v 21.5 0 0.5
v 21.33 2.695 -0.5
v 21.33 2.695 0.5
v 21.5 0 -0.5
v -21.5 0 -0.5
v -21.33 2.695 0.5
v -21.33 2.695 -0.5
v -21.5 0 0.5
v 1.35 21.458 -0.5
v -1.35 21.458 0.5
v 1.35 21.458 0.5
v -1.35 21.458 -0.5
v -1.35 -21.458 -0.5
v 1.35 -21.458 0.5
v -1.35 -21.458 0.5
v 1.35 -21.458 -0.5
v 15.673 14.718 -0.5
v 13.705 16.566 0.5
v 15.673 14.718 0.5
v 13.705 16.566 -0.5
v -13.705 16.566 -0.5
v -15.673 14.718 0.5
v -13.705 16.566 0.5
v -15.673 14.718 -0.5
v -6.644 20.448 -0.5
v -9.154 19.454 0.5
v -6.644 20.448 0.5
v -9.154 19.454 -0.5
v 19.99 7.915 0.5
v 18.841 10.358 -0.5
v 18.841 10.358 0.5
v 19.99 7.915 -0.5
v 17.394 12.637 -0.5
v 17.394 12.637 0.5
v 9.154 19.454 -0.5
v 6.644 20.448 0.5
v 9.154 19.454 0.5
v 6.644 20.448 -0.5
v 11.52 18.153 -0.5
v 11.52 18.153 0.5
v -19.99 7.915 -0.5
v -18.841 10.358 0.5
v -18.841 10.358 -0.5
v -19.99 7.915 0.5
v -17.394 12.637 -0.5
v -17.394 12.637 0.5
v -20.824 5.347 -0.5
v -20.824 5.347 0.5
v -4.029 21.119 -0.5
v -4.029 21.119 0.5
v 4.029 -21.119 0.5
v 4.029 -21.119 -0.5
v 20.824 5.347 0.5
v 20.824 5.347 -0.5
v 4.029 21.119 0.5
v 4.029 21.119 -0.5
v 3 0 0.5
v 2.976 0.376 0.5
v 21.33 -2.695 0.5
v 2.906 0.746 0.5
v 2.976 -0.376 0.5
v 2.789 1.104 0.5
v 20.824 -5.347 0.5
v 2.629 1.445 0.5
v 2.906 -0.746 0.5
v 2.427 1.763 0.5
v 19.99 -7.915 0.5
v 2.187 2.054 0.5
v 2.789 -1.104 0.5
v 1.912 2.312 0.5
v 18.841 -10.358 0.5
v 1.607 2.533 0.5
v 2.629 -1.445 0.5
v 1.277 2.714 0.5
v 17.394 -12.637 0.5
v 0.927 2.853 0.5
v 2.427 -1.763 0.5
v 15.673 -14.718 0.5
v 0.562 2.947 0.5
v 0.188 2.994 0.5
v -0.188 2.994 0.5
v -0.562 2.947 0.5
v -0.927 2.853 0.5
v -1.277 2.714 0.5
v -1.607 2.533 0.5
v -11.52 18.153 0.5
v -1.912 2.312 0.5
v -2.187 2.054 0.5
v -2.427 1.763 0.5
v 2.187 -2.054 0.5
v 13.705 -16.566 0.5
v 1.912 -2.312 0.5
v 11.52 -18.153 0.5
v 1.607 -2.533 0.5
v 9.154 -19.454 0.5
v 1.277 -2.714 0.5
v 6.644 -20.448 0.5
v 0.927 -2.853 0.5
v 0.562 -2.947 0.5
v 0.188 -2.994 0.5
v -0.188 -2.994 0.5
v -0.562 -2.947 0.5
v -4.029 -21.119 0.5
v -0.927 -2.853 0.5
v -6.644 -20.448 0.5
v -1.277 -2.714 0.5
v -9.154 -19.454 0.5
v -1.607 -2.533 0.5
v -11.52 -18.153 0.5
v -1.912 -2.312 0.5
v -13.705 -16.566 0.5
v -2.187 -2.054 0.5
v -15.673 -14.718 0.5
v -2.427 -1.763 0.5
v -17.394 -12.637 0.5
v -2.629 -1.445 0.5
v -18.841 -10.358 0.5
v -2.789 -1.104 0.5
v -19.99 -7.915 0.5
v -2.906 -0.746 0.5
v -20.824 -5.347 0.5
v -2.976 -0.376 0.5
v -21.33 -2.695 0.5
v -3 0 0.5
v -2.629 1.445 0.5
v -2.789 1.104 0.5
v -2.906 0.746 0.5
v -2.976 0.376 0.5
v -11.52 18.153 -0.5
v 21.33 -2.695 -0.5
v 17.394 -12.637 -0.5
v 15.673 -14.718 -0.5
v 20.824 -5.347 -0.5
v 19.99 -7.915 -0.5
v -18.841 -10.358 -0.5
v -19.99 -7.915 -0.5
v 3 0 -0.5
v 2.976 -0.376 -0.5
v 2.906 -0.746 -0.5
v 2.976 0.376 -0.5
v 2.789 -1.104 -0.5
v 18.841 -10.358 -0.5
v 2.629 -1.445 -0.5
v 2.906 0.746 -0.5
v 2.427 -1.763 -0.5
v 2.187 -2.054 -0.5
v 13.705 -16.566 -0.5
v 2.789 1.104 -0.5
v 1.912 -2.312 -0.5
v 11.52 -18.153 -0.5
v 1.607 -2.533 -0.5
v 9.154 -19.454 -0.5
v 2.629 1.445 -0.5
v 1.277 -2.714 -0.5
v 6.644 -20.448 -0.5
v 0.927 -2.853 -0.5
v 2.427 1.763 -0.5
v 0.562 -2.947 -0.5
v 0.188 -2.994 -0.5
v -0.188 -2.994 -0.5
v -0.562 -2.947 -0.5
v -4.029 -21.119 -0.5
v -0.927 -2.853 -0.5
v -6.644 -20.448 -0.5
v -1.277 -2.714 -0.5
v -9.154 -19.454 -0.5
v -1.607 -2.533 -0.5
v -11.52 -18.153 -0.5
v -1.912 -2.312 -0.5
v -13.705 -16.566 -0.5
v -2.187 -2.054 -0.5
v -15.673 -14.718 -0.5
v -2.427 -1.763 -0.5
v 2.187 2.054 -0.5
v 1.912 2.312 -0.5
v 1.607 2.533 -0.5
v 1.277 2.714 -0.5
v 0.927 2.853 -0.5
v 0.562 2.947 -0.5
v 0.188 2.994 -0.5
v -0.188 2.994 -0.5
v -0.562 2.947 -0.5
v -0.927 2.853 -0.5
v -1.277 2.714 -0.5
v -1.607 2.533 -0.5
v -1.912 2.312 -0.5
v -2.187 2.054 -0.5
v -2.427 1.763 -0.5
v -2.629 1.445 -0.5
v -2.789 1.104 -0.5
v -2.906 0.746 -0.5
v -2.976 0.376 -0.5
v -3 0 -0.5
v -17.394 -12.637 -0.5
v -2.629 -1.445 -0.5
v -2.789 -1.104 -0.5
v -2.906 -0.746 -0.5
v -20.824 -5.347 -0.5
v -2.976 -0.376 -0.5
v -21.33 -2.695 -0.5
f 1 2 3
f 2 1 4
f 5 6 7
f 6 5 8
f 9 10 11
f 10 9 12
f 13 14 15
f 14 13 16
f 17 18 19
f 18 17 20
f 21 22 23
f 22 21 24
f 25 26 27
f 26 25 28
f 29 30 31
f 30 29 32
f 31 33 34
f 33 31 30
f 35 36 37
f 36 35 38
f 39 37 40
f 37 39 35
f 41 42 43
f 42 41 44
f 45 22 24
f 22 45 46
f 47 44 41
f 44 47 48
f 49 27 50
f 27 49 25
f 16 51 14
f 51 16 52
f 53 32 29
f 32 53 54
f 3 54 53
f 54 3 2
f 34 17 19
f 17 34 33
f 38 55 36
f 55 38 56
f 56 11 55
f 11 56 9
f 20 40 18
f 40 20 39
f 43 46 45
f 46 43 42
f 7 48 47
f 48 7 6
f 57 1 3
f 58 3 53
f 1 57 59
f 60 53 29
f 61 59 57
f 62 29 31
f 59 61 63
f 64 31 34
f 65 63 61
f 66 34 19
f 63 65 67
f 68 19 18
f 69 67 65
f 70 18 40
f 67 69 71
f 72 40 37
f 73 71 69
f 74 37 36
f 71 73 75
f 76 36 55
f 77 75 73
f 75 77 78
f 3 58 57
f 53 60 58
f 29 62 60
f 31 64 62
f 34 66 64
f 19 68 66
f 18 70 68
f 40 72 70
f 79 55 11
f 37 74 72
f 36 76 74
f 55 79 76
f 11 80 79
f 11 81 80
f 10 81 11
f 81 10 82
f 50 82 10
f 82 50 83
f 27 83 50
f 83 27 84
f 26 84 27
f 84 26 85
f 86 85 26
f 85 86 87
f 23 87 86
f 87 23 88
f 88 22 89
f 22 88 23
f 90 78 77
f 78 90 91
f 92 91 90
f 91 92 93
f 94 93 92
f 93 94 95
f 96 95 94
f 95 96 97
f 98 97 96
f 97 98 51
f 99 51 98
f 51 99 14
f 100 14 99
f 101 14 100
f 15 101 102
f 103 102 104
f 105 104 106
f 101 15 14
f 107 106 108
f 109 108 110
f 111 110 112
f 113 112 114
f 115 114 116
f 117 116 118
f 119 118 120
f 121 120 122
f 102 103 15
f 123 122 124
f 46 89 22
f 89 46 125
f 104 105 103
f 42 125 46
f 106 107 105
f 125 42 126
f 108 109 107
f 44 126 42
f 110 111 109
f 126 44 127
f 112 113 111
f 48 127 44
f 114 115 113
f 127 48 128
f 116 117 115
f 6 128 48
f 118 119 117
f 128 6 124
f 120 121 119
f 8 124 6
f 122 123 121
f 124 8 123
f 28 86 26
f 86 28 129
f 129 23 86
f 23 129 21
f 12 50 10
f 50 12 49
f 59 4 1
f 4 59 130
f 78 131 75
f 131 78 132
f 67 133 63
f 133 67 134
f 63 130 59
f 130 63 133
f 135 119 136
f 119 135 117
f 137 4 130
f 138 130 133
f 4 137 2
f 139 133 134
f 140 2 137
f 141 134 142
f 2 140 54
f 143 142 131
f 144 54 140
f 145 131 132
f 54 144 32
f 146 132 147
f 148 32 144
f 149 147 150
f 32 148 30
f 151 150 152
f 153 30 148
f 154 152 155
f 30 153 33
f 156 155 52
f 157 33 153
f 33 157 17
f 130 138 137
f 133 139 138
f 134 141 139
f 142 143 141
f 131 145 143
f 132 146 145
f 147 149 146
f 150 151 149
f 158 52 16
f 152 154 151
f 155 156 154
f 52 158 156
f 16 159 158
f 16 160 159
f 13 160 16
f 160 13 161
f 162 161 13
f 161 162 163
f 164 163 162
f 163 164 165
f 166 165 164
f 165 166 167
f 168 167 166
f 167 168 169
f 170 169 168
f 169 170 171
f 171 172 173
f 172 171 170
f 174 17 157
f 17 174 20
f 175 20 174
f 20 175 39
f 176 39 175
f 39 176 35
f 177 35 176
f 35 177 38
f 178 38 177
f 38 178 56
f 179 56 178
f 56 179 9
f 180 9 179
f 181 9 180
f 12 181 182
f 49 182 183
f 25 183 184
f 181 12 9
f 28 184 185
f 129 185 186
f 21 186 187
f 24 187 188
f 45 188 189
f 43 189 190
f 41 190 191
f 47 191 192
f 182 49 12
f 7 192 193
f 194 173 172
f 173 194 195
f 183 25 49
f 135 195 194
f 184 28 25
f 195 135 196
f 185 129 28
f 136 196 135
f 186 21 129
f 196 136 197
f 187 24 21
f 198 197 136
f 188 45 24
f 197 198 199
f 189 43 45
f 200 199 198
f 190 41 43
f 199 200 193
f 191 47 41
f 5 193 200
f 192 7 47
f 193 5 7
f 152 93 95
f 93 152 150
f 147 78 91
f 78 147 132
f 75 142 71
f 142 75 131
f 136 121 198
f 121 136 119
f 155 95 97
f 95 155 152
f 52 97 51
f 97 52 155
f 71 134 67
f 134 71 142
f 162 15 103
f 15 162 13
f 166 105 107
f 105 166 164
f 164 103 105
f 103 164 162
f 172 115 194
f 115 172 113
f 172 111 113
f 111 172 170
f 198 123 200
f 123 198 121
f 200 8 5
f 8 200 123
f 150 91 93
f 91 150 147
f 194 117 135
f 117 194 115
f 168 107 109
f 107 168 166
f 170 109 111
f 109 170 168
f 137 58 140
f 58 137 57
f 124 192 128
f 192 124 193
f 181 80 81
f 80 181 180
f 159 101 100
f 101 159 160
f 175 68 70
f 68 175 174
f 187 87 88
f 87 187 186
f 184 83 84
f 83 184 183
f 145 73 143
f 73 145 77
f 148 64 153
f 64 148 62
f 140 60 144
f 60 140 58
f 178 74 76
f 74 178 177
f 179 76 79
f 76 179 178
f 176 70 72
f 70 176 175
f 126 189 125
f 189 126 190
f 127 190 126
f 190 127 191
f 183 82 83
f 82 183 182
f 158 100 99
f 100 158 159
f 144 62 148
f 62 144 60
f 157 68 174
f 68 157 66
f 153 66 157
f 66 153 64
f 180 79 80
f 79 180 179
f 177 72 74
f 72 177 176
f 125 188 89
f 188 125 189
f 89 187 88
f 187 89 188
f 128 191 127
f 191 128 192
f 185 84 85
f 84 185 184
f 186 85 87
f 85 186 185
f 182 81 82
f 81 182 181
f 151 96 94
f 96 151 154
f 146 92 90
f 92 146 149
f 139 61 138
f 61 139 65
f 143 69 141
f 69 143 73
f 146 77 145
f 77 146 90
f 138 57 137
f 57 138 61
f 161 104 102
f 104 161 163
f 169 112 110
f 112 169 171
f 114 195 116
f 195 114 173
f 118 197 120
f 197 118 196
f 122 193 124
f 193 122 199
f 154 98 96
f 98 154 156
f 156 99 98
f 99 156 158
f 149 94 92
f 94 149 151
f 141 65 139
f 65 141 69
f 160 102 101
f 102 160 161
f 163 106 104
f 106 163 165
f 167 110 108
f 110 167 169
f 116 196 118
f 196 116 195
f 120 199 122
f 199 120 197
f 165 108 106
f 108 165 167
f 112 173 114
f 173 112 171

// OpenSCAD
$fn = 50;


difference() {
	union() {
		translate(v = [0, 0, -0.5000000000]) {
			cylinder(h = 1, r = 21.5000000000);
		}
	}
	union() {
		translate(v = [0, 0, -100.0000000000]) {
			cylinder(h = 200, r = 3);
		}
	}
}
